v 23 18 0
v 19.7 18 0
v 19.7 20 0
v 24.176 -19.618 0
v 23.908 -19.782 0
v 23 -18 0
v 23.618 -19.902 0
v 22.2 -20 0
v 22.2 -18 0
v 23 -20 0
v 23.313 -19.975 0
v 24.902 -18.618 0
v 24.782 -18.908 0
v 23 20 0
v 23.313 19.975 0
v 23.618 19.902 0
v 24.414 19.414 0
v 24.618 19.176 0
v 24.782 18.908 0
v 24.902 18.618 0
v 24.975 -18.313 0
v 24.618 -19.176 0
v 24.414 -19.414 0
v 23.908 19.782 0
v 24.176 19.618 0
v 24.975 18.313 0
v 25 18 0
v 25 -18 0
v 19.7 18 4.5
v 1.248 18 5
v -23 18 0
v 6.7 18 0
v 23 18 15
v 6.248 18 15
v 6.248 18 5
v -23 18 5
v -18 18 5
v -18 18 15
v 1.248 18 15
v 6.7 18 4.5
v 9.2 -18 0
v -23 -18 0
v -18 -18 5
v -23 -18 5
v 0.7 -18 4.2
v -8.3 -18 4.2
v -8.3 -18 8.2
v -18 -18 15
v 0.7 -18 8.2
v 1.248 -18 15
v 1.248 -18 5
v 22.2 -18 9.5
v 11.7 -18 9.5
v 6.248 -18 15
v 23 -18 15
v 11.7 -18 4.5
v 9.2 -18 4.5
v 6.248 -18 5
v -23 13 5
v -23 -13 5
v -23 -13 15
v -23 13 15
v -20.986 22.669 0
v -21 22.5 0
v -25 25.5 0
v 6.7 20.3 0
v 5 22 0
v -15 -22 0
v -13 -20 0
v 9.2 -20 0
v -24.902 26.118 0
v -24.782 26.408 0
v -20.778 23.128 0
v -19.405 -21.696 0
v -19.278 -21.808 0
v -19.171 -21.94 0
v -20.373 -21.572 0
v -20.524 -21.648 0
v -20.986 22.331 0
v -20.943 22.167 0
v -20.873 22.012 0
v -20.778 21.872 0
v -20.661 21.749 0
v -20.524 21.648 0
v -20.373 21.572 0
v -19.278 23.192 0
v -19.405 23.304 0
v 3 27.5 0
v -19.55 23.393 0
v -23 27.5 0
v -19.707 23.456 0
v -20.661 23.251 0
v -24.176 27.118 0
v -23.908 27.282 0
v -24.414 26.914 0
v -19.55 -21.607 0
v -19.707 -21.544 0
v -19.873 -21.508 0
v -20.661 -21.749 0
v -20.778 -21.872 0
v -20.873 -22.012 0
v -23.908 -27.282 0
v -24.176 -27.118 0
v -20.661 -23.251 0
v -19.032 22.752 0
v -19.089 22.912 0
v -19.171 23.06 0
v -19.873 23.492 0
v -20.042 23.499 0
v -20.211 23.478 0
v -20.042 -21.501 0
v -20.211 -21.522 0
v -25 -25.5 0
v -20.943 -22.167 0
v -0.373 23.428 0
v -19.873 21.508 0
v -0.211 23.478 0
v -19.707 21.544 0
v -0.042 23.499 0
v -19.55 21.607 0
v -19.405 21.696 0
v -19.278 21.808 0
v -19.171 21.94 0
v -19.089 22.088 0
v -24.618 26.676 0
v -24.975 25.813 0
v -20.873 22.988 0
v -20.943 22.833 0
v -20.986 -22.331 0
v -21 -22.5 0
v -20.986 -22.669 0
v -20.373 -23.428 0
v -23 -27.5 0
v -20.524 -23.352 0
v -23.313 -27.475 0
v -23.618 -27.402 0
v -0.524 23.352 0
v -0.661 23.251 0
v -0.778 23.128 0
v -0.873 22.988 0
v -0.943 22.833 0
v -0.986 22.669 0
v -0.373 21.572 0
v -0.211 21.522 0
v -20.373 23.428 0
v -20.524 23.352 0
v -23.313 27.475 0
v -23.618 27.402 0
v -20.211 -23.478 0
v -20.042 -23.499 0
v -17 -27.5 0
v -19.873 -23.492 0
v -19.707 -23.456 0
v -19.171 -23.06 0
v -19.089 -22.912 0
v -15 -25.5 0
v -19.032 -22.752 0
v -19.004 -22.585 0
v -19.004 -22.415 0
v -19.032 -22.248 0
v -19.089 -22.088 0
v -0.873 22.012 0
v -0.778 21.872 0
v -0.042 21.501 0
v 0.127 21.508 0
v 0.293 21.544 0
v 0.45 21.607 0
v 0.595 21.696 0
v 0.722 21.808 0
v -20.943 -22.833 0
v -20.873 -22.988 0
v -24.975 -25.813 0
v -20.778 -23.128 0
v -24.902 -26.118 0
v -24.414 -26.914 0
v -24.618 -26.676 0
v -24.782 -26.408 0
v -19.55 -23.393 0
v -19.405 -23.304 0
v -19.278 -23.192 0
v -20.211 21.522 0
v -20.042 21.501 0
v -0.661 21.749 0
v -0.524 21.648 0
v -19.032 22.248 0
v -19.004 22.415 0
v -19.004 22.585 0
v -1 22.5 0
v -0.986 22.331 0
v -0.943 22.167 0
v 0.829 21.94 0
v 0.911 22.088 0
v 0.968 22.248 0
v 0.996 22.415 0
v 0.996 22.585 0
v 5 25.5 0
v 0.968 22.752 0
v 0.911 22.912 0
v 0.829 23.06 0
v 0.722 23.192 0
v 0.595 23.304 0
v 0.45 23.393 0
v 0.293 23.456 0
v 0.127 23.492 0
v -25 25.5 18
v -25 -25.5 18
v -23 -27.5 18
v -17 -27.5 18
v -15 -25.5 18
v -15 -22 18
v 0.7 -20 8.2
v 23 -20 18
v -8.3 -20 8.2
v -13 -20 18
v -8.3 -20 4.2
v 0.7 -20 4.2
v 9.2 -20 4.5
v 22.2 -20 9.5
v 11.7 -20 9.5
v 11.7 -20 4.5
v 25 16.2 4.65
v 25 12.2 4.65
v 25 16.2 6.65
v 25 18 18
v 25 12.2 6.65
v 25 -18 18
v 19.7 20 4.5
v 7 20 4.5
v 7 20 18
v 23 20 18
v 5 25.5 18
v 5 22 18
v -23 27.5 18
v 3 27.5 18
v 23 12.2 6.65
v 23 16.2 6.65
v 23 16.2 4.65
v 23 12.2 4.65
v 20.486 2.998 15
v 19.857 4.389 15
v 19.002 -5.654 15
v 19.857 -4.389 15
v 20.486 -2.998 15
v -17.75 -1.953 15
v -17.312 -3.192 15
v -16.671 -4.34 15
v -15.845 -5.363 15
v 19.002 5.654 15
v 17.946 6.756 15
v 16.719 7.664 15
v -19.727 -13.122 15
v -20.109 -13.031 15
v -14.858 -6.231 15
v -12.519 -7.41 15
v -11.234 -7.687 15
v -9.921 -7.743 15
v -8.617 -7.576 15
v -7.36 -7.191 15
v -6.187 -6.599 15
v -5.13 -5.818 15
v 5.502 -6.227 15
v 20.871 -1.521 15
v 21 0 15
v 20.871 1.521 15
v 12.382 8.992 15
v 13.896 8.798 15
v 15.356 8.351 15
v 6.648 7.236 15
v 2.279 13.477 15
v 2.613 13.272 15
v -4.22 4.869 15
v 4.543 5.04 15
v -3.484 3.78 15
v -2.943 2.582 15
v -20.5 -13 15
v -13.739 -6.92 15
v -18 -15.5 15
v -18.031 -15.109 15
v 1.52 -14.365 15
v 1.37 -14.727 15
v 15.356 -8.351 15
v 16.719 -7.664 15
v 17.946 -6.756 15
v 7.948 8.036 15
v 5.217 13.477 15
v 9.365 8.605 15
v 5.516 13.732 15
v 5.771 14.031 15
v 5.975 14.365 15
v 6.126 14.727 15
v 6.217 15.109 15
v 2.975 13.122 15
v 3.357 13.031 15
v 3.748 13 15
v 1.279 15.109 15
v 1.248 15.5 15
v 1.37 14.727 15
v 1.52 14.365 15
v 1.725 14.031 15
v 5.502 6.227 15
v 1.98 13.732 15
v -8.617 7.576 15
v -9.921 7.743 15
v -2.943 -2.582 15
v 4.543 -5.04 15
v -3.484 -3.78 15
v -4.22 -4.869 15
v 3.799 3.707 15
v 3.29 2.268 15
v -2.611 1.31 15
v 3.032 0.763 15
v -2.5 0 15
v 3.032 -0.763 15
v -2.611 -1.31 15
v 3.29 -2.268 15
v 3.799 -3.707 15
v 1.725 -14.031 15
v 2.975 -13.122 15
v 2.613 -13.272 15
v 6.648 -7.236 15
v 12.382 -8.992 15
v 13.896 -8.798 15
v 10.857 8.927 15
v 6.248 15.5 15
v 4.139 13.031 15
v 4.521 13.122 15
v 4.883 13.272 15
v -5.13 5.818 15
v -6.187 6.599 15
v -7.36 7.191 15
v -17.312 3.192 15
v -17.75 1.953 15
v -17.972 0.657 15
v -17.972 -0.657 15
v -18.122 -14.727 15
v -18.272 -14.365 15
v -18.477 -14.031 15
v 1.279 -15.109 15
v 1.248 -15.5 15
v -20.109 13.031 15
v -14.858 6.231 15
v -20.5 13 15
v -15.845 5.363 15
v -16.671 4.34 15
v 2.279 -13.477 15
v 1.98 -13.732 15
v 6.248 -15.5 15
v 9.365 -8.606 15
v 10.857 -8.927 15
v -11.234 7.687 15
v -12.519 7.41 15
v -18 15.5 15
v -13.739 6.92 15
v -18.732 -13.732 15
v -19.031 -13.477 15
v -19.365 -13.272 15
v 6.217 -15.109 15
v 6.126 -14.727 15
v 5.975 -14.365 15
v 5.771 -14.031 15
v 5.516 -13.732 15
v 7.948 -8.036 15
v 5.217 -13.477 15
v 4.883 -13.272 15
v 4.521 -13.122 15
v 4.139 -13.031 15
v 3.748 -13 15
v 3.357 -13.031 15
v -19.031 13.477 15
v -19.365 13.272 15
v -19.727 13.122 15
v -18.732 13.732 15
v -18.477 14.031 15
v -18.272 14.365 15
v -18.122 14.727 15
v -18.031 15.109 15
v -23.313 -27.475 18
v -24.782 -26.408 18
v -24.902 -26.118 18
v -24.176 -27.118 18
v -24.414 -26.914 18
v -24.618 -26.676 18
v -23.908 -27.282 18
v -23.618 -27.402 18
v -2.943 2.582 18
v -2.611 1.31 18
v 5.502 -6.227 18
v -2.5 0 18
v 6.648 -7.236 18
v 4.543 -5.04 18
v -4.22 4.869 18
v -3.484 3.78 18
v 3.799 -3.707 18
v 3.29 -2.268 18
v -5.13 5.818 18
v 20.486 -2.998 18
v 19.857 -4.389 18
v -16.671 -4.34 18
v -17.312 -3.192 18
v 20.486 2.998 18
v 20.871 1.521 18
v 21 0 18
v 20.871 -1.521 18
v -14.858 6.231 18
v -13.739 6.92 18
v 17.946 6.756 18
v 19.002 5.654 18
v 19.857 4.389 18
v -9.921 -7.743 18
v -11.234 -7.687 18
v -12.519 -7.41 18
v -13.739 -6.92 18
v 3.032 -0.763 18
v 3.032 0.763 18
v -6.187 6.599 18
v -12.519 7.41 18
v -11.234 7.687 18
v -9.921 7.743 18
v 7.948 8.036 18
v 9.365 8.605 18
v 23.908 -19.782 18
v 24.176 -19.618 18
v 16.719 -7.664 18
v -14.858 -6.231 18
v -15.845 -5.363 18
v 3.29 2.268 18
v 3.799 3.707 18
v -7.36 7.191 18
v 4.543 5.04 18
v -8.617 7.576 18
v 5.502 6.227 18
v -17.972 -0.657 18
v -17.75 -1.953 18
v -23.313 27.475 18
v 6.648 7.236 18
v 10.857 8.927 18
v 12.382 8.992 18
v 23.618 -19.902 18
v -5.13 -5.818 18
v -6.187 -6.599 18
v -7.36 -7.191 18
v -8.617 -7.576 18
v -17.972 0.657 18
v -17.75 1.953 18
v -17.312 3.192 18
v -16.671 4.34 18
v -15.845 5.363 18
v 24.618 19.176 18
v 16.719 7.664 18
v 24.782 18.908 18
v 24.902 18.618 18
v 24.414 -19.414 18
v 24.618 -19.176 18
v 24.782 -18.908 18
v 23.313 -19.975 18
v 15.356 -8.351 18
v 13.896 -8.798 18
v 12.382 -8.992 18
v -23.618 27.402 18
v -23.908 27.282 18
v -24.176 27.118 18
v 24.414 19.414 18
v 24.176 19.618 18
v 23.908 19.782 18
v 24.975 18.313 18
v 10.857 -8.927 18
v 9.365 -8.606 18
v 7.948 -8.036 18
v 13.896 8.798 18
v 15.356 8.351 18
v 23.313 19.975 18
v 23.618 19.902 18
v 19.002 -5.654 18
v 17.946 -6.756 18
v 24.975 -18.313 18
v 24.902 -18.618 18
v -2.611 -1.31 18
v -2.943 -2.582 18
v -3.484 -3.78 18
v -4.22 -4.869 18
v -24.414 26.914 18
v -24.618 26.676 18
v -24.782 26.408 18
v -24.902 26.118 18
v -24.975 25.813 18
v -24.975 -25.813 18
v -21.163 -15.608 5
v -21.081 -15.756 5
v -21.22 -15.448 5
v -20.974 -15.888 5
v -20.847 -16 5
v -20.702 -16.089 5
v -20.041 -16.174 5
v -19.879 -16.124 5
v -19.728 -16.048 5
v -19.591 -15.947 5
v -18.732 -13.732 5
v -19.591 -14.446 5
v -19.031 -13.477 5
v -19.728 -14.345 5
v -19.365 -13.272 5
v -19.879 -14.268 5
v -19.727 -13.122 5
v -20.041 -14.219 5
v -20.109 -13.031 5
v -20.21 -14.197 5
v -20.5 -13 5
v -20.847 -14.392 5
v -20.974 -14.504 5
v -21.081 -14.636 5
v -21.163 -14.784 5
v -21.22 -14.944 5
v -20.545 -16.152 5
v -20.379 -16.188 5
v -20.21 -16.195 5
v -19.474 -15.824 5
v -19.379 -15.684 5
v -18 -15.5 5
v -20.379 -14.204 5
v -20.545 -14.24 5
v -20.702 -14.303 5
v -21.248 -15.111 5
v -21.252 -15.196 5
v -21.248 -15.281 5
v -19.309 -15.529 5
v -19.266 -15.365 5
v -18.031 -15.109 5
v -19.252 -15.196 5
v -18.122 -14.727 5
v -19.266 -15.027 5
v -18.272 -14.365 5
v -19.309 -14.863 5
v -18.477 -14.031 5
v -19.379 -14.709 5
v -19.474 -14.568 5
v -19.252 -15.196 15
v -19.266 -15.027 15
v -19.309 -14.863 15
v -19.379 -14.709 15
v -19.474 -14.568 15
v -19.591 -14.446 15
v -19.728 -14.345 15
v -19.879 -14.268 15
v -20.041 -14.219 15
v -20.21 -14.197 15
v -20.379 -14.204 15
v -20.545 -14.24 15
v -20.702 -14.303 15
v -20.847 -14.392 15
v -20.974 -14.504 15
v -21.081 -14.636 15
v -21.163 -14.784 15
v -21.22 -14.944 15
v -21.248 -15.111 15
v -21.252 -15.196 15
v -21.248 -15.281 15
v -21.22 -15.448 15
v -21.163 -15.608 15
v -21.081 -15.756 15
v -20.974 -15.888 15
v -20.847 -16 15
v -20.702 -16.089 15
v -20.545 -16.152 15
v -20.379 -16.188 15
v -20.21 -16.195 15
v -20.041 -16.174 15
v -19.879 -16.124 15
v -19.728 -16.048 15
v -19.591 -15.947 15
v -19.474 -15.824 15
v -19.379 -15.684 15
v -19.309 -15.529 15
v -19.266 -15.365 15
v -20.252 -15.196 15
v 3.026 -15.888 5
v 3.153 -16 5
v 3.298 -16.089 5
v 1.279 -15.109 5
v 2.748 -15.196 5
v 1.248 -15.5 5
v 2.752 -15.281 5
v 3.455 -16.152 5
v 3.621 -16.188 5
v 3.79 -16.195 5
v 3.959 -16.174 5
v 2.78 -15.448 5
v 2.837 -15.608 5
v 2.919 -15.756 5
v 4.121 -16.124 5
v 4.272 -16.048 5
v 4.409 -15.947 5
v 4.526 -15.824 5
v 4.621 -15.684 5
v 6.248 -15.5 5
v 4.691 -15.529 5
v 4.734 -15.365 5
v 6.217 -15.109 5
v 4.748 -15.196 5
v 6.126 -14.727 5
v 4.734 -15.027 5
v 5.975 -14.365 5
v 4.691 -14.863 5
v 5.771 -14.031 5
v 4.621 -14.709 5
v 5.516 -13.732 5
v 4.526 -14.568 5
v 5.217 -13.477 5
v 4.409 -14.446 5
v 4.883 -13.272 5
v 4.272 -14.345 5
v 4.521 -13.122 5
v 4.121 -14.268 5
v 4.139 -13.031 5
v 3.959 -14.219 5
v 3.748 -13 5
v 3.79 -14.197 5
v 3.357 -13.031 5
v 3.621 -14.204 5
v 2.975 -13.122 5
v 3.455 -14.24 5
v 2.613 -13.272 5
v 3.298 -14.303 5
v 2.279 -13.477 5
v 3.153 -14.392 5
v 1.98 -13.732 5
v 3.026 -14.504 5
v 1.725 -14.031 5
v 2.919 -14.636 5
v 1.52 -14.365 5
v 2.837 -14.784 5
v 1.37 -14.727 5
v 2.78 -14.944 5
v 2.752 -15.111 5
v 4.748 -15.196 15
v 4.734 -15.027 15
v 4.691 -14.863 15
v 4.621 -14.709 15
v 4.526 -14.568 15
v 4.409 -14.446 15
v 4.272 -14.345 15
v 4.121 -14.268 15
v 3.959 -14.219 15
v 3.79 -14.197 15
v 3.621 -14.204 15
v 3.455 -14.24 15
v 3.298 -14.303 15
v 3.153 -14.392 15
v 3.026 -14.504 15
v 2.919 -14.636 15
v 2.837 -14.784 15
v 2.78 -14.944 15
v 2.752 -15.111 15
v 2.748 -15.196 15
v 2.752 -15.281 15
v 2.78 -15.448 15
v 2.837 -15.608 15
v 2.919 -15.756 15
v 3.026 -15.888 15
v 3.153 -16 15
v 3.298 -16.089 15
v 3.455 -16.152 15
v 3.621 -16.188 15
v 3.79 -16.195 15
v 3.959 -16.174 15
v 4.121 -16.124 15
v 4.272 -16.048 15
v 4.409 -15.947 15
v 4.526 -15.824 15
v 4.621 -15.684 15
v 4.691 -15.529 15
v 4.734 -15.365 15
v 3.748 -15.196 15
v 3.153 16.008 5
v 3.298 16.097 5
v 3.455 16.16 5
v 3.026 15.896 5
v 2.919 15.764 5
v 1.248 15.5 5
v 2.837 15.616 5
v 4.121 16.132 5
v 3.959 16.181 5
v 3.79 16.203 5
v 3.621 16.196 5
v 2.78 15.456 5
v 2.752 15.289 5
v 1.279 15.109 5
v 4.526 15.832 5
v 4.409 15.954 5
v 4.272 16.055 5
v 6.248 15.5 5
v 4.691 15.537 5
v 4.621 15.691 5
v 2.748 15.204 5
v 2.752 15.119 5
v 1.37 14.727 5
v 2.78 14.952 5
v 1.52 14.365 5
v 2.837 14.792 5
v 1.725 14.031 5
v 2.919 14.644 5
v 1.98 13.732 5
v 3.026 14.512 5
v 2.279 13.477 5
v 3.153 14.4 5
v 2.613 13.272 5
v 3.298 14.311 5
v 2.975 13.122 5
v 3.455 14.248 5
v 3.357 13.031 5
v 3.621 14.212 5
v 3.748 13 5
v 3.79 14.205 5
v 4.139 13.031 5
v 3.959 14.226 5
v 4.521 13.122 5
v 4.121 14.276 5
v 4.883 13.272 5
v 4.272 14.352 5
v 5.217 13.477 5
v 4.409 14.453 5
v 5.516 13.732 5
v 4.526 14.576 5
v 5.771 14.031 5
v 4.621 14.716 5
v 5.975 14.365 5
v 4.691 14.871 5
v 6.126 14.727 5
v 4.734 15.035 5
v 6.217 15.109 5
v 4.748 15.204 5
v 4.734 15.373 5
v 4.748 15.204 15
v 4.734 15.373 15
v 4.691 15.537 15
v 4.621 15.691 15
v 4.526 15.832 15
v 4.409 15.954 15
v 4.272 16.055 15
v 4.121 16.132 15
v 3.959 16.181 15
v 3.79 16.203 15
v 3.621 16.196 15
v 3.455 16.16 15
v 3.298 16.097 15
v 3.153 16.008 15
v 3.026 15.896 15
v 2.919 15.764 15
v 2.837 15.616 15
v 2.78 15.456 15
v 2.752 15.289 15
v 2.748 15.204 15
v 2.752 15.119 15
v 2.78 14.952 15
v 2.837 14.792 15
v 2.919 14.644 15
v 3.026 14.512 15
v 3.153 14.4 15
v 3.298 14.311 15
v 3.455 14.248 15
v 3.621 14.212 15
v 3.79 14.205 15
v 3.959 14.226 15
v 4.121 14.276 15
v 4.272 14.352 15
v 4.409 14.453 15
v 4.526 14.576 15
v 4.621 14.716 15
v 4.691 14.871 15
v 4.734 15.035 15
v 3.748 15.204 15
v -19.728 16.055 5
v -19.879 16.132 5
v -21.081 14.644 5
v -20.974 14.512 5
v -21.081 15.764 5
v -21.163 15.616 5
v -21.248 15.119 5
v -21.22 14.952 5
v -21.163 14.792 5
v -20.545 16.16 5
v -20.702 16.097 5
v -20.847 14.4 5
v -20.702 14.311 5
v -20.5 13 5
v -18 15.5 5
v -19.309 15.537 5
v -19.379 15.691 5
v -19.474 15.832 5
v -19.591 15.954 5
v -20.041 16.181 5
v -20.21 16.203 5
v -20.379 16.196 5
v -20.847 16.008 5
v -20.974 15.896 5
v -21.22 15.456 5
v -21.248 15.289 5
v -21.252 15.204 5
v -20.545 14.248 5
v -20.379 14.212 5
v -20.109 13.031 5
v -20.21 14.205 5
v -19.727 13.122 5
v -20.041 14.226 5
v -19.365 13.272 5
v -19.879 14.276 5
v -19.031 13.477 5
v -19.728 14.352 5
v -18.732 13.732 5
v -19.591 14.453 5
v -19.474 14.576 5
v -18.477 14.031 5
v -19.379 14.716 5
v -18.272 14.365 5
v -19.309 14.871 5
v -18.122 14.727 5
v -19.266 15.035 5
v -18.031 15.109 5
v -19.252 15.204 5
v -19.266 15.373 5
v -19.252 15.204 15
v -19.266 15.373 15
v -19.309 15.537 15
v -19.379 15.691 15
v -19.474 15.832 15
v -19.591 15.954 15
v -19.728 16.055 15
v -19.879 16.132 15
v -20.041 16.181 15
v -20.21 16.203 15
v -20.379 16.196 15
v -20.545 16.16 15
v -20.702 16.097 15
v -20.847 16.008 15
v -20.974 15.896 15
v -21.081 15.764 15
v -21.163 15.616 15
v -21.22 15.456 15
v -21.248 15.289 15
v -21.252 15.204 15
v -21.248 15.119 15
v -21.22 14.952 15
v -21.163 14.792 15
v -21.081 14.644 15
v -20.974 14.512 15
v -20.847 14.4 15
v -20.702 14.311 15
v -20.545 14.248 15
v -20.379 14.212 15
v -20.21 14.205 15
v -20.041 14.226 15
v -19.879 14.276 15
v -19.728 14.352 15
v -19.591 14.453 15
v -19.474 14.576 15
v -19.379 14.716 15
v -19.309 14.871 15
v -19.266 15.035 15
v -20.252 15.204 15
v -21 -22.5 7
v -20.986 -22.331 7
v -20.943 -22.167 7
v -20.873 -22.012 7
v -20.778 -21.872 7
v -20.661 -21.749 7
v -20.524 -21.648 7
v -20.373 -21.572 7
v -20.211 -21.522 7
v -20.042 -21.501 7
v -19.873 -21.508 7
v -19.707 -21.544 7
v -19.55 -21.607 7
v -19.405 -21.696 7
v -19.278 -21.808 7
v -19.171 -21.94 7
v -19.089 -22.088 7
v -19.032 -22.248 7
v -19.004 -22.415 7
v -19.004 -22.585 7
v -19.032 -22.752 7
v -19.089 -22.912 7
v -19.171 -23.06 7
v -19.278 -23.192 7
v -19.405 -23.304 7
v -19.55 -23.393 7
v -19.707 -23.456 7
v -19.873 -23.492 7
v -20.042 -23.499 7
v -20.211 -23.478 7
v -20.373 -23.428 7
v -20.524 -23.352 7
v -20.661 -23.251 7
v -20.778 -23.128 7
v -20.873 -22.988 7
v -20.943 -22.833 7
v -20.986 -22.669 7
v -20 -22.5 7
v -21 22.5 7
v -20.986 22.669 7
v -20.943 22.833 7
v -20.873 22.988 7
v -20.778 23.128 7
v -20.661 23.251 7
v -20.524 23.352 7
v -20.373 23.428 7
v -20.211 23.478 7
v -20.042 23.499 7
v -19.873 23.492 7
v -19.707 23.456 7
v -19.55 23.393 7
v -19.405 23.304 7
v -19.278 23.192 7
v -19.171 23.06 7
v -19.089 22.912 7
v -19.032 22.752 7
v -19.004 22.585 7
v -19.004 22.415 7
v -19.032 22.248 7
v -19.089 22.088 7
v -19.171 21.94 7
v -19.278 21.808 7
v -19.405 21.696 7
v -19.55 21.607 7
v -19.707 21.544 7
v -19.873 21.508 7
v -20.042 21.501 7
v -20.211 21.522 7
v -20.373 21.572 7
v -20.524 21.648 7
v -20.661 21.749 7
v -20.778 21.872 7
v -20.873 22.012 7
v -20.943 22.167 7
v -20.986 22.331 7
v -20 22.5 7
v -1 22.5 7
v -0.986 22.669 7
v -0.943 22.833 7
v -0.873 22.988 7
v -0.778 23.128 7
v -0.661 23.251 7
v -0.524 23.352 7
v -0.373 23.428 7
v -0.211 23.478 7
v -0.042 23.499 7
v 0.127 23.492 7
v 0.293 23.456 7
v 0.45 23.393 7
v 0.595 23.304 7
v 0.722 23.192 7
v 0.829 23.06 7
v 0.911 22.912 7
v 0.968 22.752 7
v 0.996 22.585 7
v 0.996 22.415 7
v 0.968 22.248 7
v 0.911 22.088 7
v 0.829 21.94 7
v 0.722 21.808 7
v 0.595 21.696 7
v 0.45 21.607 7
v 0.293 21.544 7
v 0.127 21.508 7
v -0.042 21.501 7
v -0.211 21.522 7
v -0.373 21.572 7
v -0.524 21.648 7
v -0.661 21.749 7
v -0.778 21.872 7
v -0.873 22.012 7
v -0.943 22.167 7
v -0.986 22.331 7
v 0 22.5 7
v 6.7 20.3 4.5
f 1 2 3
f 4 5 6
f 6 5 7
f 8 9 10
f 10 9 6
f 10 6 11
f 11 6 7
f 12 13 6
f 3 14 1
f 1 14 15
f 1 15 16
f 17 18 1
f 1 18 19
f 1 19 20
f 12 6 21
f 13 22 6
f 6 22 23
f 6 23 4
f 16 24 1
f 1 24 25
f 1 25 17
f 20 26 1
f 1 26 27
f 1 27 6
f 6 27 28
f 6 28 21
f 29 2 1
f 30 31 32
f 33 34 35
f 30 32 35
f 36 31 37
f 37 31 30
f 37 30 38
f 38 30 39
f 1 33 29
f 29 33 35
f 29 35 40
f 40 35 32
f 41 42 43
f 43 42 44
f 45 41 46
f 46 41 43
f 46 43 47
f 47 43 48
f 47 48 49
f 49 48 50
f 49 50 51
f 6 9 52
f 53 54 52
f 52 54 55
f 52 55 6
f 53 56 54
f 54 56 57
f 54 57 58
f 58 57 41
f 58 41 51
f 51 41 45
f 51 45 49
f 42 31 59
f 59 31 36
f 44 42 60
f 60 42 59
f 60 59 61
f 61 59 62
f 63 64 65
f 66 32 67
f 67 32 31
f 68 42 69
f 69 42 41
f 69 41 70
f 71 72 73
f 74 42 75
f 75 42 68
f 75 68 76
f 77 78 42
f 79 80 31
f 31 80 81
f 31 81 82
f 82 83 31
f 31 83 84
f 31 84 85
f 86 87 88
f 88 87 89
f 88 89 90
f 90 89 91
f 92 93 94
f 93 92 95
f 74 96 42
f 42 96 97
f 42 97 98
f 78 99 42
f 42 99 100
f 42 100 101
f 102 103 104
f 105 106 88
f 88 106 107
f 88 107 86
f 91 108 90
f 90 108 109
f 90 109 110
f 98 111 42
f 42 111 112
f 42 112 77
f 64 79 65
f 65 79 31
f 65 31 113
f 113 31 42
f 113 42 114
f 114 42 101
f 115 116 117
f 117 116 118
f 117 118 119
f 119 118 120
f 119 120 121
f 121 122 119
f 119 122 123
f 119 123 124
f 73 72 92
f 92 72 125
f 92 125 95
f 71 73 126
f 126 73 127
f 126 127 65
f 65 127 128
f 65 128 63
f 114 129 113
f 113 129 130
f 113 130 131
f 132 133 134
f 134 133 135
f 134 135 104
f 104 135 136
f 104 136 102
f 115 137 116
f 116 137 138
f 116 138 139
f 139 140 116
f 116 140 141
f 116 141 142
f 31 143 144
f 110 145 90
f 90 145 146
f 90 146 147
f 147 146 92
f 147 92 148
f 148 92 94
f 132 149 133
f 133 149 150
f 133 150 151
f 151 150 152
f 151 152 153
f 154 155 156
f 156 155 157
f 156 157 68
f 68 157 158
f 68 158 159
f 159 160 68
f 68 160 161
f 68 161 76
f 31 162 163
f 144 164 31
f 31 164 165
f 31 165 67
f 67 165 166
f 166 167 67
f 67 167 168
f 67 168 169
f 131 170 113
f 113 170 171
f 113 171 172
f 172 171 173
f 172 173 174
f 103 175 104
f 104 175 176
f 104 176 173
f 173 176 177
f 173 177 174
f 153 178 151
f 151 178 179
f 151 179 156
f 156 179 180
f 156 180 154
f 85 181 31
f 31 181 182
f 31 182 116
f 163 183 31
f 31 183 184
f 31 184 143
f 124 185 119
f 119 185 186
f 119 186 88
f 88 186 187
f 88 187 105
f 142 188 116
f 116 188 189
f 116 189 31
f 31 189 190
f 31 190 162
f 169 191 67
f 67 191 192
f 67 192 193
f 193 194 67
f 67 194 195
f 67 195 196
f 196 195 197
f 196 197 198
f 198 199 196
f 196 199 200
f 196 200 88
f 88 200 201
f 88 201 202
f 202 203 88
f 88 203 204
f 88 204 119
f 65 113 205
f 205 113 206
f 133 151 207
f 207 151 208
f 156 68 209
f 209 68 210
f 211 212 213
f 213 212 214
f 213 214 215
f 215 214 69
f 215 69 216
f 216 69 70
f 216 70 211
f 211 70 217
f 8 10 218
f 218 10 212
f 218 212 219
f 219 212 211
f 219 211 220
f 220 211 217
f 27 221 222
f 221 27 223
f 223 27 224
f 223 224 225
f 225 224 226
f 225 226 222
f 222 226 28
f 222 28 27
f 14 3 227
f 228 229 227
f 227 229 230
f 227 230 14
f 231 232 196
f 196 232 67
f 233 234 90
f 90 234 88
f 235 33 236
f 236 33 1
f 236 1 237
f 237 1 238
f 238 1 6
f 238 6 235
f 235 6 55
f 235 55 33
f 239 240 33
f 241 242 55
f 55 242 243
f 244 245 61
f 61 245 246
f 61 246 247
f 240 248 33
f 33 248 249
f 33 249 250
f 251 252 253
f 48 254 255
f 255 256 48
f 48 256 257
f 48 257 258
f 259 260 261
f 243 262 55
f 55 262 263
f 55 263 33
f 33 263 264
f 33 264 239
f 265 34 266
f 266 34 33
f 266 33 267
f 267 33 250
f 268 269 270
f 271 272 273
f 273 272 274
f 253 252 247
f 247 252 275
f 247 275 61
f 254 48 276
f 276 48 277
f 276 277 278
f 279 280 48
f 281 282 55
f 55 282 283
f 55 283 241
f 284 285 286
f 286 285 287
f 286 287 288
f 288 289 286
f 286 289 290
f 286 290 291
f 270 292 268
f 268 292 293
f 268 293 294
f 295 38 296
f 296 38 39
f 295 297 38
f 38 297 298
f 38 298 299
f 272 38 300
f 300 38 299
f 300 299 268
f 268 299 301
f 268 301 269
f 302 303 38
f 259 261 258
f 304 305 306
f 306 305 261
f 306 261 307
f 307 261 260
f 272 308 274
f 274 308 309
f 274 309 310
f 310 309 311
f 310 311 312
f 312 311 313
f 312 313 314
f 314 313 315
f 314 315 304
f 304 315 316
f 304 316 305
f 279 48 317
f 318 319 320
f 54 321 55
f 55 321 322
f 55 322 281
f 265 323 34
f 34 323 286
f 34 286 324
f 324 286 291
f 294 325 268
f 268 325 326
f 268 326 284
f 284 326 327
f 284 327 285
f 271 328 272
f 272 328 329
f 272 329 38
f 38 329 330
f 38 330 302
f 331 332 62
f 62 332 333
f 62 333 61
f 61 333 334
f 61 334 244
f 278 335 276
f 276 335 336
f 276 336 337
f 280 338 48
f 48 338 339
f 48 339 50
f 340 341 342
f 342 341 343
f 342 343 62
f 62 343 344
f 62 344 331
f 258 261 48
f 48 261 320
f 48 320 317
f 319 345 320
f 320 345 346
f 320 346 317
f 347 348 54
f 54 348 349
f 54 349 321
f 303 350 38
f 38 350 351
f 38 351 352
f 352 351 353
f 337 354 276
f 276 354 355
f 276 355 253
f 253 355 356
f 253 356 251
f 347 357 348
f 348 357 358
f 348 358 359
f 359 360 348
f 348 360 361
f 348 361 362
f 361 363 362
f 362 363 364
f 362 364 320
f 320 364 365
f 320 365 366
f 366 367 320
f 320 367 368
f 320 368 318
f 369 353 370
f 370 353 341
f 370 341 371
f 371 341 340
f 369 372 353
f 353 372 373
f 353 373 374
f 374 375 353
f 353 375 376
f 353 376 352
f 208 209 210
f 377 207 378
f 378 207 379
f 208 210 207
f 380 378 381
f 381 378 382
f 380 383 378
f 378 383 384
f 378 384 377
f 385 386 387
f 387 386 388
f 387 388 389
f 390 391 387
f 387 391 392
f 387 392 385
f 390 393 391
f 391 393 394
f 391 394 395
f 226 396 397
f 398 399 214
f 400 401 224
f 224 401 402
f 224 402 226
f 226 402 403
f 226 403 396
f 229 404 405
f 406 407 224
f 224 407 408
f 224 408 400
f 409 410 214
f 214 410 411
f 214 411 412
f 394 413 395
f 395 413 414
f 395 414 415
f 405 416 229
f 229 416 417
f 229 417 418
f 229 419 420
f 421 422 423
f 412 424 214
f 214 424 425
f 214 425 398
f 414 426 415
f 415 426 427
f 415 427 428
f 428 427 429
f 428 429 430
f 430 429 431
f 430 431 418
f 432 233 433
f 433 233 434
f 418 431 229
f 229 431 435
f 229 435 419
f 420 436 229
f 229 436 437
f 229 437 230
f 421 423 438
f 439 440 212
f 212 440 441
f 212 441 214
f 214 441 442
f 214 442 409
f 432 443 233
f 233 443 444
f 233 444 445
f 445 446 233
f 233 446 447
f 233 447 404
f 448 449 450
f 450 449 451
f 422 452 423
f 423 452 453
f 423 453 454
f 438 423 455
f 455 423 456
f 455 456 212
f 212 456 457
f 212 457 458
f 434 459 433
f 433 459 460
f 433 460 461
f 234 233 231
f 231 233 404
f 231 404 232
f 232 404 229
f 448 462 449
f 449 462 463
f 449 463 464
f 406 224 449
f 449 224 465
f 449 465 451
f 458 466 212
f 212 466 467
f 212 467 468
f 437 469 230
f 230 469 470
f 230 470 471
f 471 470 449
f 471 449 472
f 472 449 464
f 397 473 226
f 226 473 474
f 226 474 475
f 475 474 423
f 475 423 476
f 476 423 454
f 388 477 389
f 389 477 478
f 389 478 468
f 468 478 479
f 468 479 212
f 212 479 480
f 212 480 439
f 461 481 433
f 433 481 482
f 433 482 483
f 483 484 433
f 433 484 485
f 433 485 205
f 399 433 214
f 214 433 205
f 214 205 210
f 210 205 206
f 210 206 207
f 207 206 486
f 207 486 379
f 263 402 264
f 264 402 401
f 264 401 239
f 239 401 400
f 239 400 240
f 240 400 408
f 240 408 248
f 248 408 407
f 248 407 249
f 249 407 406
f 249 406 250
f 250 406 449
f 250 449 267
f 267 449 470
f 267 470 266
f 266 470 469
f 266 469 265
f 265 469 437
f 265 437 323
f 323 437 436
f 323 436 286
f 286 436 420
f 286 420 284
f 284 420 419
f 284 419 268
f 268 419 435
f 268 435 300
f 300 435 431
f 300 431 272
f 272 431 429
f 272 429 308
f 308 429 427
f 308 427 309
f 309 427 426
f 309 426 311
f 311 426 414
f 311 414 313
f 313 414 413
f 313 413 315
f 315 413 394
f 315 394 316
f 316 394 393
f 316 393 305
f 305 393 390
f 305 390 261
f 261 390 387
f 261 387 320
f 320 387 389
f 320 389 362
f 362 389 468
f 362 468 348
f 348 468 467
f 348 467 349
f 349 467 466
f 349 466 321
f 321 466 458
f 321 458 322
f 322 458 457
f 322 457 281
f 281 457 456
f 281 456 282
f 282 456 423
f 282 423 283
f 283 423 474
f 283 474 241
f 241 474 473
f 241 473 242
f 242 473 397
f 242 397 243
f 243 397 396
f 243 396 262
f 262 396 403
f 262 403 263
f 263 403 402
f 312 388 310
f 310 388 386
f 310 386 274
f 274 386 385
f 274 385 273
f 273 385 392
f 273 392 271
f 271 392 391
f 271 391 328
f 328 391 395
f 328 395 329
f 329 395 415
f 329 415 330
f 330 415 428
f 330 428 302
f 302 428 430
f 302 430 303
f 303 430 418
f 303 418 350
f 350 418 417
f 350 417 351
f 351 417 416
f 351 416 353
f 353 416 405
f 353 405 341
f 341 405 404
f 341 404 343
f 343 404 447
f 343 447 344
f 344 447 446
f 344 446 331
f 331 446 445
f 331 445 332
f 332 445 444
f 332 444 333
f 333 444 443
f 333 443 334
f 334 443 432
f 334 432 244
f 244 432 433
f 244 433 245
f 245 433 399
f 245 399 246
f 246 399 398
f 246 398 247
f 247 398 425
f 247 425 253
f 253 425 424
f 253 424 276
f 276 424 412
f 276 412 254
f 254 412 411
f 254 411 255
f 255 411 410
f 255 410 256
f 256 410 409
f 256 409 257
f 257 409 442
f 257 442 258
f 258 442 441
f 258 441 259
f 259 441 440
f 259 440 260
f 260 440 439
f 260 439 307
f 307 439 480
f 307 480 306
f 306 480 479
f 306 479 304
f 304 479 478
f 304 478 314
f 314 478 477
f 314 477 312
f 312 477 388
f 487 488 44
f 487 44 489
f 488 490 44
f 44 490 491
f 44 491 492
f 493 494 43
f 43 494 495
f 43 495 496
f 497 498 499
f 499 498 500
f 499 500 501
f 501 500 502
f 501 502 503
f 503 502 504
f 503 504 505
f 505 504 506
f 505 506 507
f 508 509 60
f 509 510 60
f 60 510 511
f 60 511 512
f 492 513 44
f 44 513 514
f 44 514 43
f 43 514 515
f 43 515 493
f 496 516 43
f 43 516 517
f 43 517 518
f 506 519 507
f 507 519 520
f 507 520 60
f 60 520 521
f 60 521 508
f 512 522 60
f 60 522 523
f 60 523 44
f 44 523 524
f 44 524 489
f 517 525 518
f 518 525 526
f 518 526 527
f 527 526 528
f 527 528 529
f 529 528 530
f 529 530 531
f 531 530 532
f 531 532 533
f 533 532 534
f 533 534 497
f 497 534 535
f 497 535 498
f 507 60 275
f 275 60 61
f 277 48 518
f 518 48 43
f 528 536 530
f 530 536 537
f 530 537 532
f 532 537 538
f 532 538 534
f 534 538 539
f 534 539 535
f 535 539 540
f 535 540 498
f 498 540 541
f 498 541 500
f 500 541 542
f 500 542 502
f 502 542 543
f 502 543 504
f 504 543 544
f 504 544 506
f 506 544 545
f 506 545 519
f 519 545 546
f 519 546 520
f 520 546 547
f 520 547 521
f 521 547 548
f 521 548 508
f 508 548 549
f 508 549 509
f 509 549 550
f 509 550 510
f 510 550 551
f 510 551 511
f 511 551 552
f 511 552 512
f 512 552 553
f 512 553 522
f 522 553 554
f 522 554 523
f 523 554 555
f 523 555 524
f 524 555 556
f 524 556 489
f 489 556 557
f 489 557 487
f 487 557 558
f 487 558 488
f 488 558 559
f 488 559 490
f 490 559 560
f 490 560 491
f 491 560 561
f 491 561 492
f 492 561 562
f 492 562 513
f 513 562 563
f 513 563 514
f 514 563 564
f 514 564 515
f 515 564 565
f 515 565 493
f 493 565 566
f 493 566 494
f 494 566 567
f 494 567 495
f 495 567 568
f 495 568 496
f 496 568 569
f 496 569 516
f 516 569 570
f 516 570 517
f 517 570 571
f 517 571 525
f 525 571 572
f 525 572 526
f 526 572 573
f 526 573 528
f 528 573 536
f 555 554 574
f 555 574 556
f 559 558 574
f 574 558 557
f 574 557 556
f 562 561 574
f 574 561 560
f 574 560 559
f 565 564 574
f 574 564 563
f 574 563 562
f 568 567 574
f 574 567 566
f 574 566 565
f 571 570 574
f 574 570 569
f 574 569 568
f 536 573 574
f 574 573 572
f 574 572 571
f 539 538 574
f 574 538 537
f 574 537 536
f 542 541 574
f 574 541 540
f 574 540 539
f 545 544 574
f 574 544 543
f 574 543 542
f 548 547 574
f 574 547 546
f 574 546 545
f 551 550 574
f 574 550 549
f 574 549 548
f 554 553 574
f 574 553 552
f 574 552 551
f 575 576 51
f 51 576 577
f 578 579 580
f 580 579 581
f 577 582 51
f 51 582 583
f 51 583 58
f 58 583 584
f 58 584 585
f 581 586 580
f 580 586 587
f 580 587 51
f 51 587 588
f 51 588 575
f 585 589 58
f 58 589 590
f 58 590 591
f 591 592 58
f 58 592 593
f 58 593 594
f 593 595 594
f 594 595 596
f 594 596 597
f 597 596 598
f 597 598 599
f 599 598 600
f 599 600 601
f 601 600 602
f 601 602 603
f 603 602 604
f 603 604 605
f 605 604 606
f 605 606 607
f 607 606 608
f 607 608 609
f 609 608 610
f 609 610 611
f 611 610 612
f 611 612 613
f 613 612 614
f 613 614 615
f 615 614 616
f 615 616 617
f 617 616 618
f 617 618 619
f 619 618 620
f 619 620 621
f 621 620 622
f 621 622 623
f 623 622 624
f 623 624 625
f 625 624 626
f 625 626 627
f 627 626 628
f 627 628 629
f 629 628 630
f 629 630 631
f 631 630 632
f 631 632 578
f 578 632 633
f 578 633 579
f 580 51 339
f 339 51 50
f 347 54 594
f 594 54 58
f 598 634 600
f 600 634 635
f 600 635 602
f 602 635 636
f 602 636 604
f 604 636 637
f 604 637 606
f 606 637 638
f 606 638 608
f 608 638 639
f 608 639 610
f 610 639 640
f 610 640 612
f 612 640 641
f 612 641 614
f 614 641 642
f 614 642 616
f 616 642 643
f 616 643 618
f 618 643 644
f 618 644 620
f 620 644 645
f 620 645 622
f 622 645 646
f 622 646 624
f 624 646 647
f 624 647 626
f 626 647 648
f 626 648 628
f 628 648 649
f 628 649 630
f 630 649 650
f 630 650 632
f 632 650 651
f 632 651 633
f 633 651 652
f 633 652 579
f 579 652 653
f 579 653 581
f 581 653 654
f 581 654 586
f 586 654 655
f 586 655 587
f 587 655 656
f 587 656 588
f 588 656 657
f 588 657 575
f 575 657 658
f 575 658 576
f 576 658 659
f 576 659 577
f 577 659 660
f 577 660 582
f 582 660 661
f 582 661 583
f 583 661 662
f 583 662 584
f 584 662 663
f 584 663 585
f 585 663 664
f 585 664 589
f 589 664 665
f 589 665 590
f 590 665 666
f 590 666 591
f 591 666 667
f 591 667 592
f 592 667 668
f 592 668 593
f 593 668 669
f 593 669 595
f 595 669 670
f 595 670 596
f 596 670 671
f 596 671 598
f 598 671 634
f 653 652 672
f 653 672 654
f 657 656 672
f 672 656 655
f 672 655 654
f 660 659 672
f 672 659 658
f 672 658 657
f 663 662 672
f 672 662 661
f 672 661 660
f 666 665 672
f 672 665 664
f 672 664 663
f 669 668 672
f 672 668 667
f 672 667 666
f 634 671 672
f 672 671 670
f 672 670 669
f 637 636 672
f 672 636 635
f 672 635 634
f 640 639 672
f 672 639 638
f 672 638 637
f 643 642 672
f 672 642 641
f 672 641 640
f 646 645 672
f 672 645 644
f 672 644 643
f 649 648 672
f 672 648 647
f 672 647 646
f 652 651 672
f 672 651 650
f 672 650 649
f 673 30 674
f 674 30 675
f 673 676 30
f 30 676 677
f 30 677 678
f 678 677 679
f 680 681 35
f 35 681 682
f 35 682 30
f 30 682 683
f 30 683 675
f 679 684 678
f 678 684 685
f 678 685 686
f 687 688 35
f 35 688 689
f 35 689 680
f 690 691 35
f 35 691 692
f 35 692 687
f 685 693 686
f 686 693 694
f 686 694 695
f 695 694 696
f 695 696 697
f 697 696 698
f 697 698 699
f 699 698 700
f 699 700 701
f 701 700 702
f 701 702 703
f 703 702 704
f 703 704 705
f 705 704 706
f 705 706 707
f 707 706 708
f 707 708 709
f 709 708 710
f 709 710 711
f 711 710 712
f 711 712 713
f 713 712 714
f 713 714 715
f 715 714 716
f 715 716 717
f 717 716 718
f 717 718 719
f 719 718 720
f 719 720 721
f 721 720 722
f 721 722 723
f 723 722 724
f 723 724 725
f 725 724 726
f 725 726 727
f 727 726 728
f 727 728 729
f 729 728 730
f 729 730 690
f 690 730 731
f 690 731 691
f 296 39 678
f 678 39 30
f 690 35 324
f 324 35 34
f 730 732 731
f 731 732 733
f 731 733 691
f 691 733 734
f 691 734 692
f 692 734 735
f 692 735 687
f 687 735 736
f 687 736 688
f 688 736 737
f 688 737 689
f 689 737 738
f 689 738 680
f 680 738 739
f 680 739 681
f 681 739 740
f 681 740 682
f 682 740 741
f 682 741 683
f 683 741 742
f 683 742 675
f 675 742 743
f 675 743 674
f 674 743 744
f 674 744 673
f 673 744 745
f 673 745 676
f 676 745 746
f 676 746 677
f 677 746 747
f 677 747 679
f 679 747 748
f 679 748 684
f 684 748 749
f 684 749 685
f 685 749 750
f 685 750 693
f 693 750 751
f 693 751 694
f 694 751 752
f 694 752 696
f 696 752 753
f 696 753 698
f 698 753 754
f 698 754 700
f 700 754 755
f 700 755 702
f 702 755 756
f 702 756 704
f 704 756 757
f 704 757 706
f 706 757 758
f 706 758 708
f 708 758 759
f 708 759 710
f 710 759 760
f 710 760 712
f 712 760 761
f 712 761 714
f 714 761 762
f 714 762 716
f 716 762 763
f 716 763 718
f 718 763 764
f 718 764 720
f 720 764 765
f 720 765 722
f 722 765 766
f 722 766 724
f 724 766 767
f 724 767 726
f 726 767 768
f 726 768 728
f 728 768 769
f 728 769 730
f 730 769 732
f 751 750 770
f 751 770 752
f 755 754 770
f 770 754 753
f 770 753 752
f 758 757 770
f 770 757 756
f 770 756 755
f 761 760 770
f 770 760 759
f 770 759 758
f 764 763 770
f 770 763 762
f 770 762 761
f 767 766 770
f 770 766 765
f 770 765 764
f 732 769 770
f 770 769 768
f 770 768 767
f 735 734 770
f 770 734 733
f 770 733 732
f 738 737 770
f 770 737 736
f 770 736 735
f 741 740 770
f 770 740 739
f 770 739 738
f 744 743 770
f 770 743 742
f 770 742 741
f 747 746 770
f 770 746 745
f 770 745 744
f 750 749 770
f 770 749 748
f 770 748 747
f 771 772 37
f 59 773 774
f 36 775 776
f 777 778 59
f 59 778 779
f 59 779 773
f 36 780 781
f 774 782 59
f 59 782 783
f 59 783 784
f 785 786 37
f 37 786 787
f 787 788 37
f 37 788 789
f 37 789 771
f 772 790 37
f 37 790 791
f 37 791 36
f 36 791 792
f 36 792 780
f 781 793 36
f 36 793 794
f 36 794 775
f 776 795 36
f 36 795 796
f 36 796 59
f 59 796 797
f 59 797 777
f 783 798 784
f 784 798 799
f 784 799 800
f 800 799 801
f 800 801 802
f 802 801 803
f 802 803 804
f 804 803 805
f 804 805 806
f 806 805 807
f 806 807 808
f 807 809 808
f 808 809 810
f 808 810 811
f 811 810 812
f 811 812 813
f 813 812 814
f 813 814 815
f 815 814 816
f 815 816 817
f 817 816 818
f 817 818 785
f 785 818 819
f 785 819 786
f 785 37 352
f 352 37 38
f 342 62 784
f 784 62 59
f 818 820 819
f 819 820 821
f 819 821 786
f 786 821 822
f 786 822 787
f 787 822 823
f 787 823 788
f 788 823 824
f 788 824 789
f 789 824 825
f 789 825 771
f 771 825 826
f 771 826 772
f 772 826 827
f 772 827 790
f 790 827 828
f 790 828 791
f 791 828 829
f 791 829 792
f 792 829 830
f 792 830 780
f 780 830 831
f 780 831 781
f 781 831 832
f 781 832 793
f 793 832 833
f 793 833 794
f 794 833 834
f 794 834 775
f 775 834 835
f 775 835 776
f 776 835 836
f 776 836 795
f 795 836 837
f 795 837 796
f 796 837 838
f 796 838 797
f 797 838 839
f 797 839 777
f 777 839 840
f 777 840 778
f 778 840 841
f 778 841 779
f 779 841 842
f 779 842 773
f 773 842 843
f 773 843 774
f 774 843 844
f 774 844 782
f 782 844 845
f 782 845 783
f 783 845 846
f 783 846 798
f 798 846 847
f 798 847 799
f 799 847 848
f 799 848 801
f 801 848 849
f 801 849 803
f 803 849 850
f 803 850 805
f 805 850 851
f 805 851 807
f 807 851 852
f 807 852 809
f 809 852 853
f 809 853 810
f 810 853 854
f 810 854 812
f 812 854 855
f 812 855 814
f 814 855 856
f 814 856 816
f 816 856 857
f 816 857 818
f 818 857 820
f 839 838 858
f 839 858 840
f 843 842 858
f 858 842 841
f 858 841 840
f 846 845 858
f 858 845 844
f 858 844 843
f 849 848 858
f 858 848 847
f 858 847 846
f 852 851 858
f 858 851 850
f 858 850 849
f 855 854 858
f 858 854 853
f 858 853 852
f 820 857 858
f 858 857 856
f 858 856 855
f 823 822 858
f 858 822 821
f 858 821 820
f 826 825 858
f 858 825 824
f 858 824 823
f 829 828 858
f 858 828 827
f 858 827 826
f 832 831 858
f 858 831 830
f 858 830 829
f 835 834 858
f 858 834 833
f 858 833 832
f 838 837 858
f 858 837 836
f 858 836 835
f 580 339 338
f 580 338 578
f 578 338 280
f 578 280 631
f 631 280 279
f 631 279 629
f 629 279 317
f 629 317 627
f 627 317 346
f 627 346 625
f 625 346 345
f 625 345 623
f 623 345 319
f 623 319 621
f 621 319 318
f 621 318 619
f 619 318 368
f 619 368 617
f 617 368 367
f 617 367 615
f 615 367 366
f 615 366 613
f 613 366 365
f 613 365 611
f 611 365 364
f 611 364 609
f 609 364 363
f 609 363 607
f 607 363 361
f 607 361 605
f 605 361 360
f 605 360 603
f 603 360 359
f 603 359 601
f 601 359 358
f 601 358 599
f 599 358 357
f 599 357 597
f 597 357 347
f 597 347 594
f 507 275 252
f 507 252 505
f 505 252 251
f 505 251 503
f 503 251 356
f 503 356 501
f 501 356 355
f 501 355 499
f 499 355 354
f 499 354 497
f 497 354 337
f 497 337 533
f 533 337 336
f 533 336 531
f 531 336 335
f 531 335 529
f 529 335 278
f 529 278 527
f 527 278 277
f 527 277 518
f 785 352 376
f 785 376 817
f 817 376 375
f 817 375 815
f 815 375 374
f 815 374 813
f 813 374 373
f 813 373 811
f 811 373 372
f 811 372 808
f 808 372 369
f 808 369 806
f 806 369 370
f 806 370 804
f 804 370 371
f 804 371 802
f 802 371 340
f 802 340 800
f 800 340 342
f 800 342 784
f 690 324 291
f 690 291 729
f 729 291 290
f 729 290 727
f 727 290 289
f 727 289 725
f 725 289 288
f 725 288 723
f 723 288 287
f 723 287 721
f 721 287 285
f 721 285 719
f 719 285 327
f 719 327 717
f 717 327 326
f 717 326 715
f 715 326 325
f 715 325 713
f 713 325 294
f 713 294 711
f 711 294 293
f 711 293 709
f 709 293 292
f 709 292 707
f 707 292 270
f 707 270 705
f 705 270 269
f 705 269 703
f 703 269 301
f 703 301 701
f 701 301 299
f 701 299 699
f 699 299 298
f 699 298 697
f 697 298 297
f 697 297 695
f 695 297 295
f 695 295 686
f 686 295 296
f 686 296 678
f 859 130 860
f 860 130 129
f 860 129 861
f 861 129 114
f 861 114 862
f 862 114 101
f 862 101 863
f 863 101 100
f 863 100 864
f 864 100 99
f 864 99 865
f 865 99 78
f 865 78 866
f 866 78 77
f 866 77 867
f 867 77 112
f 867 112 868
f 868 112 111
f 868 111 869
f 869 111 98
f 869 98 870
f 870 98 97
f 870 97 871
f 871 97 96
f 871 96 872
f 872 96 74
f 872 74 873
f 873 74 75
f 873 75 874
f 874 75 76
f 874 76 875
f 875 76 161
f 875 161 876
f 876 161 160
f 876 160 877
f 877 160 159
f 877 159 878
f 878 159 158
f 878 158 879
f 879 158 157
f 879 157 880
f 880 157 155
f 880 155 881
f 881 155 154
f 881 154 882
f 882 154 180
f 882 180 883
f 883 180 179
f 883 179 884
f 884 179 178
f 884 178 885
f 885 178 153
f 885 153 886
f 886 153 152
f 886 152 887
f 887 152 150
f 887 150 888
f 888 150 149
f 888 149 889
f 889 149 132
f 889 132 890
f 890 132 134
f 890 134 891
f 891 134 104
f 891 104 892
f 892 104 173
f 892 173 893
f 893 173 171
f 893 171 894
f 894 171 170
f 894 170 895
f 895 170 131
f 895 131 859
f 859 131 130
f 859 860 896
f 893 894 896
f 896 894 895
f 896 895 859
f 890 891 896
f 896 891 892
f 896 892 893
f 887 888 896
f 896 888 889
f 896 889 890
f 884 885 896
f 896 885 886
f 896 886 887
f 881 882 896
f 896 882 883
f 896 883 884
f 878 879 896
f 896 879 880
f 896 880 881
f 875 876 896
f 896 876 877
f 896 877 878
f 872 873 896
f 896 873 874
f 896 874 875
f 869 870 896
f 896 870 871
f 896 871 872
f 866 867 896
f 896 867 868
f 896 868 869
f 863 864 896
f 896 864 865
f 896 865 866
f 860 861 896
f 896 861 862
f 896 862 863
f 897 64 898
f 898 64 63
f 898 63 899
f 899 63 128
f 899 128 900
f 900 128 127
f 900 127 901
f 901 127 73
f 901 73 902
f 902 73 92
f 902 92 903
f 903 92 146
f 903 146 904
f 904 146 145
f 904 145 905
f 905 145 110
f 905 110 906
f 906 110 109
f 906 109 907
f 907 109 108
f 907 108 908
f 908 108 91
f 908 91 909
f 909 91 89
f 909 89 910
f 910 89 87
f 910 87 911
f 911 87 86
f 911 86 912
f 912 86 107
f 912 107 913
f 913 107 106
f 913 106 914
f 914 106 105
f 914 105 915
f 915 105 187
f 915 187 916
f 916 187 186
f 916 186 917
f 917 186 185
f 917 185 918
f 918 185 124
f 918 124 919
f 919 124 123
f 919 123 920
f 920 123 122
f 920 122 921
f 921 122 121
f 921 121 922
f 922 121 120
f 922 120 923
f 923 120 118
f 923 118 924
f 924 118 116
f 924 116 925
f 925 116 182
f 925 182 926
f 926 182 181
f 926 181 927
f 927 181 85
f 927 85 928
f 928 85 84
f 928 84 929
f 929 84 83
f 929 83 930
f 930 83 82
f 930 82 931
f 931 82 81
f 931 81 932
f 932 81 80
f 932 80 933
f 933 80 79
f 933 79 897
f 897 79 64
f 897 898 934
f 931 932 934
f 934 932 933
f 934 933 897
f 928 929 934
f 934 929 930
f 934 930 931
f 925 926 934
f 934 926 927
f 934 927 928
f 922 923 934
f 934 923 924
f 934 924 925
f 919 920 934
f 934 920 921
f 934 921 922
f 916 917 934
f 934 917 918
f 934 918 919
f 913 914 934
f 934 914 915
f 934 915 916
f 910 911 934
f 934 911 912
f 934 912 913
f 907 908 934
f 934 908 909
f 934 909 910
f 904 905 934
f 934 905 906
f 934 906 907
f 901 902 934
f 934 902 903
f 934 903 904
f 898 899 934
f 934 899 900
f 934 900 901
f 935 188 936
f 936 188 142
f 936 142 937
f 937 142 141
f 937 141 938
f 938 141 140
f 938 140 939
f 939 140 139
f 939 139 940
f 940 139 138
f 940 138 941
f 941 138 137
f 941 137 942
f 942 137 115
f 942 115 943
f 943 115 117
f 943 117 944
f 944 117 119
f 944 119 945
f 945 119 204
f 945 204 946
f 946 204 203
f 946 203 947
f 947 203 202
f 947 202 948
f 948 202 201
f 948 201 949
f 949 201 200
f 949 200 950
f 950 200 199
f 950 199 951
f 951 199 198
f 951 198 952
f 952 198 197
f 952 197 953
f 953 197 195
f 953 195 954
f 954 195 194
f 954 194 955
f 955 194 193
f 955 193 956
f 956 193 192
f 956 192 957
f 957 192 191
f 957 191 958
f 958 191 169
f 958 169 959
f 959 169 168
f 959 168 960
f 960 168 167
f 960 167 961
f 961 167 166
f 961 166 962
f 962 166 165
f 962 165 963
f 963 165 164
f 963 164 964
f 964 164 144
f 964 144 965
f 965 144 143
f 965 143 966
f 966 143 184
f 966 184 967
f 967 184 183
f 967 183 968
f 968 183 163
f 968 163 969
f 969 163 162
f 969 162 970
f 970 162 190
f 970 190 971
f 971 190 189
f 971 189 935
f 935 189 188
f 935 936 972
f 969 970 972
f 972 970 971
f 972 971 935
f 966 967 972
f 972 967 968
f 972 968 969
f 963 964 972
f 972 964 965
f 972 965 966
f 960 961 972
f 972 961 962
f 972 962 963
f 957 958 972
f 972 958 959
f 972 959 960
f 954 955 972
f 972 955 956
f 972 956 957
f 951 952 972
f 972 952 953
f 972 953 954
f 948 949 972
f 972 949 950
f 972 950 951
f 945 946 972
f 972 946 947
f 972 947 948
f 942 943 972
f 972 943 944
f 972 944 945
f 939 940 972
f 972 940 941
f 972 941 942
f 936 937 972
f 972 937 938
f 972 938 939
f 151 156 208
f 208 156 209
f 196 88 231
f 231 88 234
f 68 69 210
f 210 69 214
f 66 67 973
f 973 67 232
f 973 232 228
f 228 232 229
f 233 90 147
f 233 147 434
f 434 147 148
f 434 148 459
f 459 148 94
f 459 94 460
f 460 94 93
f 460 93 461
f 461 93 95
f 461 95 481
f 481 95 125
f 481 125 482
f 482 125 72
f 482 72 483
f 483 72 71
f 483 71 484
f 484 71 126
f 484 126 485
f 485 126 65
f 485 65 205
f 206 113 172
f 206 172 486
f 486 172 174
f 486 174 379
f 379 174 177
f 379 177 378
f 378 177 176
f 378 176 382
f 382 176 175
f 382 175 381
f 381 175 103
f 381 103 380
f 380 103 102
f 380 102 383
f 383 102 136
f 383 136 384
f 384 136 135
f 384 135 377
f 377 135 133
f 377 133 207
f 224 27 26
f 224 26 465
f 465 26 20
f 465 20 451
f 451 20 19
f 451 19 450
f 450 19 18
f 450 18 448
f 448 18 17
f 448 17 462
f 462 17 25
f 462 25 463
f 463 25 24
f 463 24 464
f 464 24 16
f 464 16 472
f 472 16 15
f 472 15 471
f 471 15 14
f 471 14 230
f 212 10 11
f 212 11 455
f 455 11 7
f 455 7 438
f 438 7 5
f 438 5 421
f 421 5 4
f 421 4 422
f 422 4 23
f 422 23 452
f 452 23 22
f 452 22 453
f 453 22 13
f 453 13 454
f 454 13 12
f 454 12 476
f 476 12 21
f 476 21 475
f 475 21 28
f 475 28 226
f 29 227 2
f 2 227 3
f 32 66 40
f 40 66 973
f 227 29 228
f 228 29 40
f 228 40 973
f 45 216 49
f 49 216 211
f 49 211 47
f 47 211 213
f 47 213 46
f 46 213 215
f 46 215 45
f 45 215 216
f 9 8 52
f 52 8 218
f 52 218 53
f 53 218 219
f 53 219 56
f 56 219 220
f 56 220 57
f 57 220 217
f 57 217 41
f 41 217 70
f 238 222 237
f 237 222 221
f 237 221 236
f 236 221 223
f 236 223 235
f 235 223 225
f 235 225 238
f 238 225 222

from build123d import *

# Parameters (mm, degrees)
SKETCH1_W           = 46
SKETCH1_H           = 36
BOSS_EXTRUDE1_DEPTH = 15
BOSS_EXTRUDE2_DEPTH = 3
SKETCH3_R           = 7.75
SKETCH3_R_2         = 9
CUT_EXTRUDE1_DEPTH  = 10
SKETCH4_W           = 5
SKETCH4_H           = 5
SKETCH4_R           = 1
BOSS_EXTRUDE3_DEPTH = 10
FILLET1_R           = 2.5
SKETCH6_R           = 1
CUT_EXTRUDE2_DEPTH  = 10
CHAMFER1_SIZE       = 2
FILLET2_R           = 2
SKETCH7_W           = 13
SKETCH7_H           = 4.5
CUT_EXTRUDE3_DEPTH  = 10
SKETCH8_W           = 9
SKETCH8_H           = 4
CUT_EXTRUDE4_DEPTH  = 10
SKETCH9_W           = 2
SKETCH9_H           = 4
CUT_EXTRUDE5_DEPTH  = 10


with BuildPart() as part:
    # Sketch1 → Boss-Extrude1 (new body)
    with BuildSketch(Plane.XY):
        Polygon((-15, -27.5), (-15, -20), (25, -20), (25, 20), (5, 20), (5, 27.5), (-25, 27.5), (-25, -27.5), align=None)
        Rectangle(SKETCH1_W, SKETCH1_H, mode=Mode.SUBTRACT)
    extrude(amount=BOSS_EXTRUDE1_DEPTH)

    # Sketch2 → Boss-Extrude2 (add)
    with BuildSketch(Plane.XY.offset(15)):
        Polygon((-25, 27.5), (-25, -27.5), (-15, -27.5), (-15, -20), (25, -20), (25, 20), (5, 20), (5, 27.5), align=None)
    extrude(amount=BOSS_EXTRUDE2_DEPTH)

    # Sketch3 → Cut-Extrude1 (cut)
    with BuildSketch(Plane.XY.offset(18)):
        with Locations((-10.25, 0)):
            Circle(SKETCH3_R)
        with Locations((12, 0)):
            Circle(SKETCH3_R_2)
    extrude(amount=-CUT_EXTRUDE1_DEPTH, mode=Mode.SUBTRACT)

    # Sketch4 → Boss-Extrude3 (add)
    # profile 1 of 4: a face of its own
    with BuildSketch(Plane(origin=(0, 0, 15), x_dir=(-1, 0, 0), z_dir=(0, 0, -1))):
        with Locations((20.5, -15.5)):
            Rectangle(SKETCH4_W, SKETCH4_H)
        with Locations((20.252039878, -15.196246514)):
            Circle(SKETCH4_R, mode=Mode.SUBTRACT)
    # profile 2 of 4: a face of its own
    with BuildSketch(Plane(origin=(0, 0, 15), x_dir=(-1, 0, 0), z_dir=(0, 0, -1))):
        with Locations((-3.747960122, -15.5)):
            Rectangle(SKETCH4_W, SKETCH4_H)
        with Locations((-3.747960122, -15.196246514)):
            Circle(SKETCH4_R, mode=Mode.SUBTRACT)
    # profile 3 of 4: a face of its own
    with BuildSketch(Plane(origin=(0, 0, 15), x_dir=(-1, 0, 0), z_dir=(0, 0, -1))):
        with Locations((-3.747960122, 15.5)):
            Rectangle(SKETCH4_W, SKETCH4_H)
        with Locations((-3.747960122, 15.203753486)):
            Circle(SKETCH4_R, mode=Mode.SUBTRACT)
    # profile 4 of 4: a face of its own
    with BuildSketch(Plane(origin=(0, 0, 15), x_dir=(-1, 0, 0), z_dir=(0, 0, -1))):
        with Locations((20.5, 15.5)):
            Rectangle(SKETCH4_W, SKETCH4_H)
        with Locations((20.252039878, 15.203753486)):
            Circle(SKETCH4_R, mode=Mode.SUBTRACT)
    extrude(amount=BOSS_EXTRUDE3_DEPTH)

    # Fillet1
    fillet1_edges = [part.edges().sort_by_distance(p)[0] for p in [
        (1.247960122, 13, 10),
        (6.247960122, 13, 10),
        (-18, 13, 10),
        (-18, -13, 10),
        (1.247960122, -13, 10),
        (6.247960122, -13, 10),
    ]]
    fillet(fillet1_edges, radius=FILLET1_R - 0.0001)  # a hair under: the kernel refuses the full size

    # Sketch6 → Cut-Extrude2 (cut)
    with BuildSketch(Plane(origin=(0, 0, -3), x_dir=(-1, 0, 0), z_dir=(0, 0, -1))):
        with Locations((0, 22.5)):
            Circle(SKETCH6_R)
        with Locations((20, 22.5)):
            Circle(SKETCH6_R)
        with Locations((20, -22.5)):
            Circle(SKETCH6_R)
    extrude(amount=-CUT_EXTRUDE2_DEPTH, mode=Mode.SUBTRACT)

    # Chamfer1
    chamfer1_edges = [part.edges().sort_by_distance(p)[0] for p in [
        (5, 27.5, 9),
        (5, 20, 9),
        (-15, -20, 9),
        (-15, -27.5, 9),
    ]]
    chamfer(chamfer1_edges, length=CHAMFER1_SIZE)

    # Fillet2
    fillet2_edges = [part.edges().sort_by_distance(p)[0] for p in [
        (-25, 27.5, 9),
        (25, 20, 9),
        (25, -20, 9),
        (-25, -27.5, 9),
    ]]
    fillet(fillet2_edges, radius=FILLET2_R)

    # Sketch7 → Cut-Extrude3 (cut)
    with BuildSketch(Plane.XZ.offset(-18)):
        with Locations((13.2, 2.25)):
            Rectangle(SKETCH7_W, SKETCH7_H)
    extrude(amount=-CUT_EXTRUDE3_DEPTH, mode=Mode.SUBTRACT)

    # Sketch8 → Cut-Extrude4 (cut)
    with BuildSketch(Plane(origin=(0, -18, 0), x_dir=(1, 0, 0), z_dir=(0, 1, 0))):
        Polygon((22.2, 0), (9.2, 0), (9.2, -4.5), (11.7, -4.5), (11.7, -9.5), (22.2, -9.5), align=None)
        with Locations((-3.8, -6.2)):
            Rectangle(SKETCH8_W, SKETCH8_H)
    extrude(amount=-CUT_EXTRUDE4_DEPTH, mode=Mode.SUBTRACT)

    # Sketch9 → Cut-Extrude5 (cut)
    with BuildSketch(Plane.ZY.offset(-23)):
        with Locations((5.65, 14.2)):
            Rectangle(SKETCH9_W, SKETCH9_H)
    extrude(amount=-CUT_EXTRUDE5_DEPTH, mode=Mode.SUBTRACT)


solid = part.part
